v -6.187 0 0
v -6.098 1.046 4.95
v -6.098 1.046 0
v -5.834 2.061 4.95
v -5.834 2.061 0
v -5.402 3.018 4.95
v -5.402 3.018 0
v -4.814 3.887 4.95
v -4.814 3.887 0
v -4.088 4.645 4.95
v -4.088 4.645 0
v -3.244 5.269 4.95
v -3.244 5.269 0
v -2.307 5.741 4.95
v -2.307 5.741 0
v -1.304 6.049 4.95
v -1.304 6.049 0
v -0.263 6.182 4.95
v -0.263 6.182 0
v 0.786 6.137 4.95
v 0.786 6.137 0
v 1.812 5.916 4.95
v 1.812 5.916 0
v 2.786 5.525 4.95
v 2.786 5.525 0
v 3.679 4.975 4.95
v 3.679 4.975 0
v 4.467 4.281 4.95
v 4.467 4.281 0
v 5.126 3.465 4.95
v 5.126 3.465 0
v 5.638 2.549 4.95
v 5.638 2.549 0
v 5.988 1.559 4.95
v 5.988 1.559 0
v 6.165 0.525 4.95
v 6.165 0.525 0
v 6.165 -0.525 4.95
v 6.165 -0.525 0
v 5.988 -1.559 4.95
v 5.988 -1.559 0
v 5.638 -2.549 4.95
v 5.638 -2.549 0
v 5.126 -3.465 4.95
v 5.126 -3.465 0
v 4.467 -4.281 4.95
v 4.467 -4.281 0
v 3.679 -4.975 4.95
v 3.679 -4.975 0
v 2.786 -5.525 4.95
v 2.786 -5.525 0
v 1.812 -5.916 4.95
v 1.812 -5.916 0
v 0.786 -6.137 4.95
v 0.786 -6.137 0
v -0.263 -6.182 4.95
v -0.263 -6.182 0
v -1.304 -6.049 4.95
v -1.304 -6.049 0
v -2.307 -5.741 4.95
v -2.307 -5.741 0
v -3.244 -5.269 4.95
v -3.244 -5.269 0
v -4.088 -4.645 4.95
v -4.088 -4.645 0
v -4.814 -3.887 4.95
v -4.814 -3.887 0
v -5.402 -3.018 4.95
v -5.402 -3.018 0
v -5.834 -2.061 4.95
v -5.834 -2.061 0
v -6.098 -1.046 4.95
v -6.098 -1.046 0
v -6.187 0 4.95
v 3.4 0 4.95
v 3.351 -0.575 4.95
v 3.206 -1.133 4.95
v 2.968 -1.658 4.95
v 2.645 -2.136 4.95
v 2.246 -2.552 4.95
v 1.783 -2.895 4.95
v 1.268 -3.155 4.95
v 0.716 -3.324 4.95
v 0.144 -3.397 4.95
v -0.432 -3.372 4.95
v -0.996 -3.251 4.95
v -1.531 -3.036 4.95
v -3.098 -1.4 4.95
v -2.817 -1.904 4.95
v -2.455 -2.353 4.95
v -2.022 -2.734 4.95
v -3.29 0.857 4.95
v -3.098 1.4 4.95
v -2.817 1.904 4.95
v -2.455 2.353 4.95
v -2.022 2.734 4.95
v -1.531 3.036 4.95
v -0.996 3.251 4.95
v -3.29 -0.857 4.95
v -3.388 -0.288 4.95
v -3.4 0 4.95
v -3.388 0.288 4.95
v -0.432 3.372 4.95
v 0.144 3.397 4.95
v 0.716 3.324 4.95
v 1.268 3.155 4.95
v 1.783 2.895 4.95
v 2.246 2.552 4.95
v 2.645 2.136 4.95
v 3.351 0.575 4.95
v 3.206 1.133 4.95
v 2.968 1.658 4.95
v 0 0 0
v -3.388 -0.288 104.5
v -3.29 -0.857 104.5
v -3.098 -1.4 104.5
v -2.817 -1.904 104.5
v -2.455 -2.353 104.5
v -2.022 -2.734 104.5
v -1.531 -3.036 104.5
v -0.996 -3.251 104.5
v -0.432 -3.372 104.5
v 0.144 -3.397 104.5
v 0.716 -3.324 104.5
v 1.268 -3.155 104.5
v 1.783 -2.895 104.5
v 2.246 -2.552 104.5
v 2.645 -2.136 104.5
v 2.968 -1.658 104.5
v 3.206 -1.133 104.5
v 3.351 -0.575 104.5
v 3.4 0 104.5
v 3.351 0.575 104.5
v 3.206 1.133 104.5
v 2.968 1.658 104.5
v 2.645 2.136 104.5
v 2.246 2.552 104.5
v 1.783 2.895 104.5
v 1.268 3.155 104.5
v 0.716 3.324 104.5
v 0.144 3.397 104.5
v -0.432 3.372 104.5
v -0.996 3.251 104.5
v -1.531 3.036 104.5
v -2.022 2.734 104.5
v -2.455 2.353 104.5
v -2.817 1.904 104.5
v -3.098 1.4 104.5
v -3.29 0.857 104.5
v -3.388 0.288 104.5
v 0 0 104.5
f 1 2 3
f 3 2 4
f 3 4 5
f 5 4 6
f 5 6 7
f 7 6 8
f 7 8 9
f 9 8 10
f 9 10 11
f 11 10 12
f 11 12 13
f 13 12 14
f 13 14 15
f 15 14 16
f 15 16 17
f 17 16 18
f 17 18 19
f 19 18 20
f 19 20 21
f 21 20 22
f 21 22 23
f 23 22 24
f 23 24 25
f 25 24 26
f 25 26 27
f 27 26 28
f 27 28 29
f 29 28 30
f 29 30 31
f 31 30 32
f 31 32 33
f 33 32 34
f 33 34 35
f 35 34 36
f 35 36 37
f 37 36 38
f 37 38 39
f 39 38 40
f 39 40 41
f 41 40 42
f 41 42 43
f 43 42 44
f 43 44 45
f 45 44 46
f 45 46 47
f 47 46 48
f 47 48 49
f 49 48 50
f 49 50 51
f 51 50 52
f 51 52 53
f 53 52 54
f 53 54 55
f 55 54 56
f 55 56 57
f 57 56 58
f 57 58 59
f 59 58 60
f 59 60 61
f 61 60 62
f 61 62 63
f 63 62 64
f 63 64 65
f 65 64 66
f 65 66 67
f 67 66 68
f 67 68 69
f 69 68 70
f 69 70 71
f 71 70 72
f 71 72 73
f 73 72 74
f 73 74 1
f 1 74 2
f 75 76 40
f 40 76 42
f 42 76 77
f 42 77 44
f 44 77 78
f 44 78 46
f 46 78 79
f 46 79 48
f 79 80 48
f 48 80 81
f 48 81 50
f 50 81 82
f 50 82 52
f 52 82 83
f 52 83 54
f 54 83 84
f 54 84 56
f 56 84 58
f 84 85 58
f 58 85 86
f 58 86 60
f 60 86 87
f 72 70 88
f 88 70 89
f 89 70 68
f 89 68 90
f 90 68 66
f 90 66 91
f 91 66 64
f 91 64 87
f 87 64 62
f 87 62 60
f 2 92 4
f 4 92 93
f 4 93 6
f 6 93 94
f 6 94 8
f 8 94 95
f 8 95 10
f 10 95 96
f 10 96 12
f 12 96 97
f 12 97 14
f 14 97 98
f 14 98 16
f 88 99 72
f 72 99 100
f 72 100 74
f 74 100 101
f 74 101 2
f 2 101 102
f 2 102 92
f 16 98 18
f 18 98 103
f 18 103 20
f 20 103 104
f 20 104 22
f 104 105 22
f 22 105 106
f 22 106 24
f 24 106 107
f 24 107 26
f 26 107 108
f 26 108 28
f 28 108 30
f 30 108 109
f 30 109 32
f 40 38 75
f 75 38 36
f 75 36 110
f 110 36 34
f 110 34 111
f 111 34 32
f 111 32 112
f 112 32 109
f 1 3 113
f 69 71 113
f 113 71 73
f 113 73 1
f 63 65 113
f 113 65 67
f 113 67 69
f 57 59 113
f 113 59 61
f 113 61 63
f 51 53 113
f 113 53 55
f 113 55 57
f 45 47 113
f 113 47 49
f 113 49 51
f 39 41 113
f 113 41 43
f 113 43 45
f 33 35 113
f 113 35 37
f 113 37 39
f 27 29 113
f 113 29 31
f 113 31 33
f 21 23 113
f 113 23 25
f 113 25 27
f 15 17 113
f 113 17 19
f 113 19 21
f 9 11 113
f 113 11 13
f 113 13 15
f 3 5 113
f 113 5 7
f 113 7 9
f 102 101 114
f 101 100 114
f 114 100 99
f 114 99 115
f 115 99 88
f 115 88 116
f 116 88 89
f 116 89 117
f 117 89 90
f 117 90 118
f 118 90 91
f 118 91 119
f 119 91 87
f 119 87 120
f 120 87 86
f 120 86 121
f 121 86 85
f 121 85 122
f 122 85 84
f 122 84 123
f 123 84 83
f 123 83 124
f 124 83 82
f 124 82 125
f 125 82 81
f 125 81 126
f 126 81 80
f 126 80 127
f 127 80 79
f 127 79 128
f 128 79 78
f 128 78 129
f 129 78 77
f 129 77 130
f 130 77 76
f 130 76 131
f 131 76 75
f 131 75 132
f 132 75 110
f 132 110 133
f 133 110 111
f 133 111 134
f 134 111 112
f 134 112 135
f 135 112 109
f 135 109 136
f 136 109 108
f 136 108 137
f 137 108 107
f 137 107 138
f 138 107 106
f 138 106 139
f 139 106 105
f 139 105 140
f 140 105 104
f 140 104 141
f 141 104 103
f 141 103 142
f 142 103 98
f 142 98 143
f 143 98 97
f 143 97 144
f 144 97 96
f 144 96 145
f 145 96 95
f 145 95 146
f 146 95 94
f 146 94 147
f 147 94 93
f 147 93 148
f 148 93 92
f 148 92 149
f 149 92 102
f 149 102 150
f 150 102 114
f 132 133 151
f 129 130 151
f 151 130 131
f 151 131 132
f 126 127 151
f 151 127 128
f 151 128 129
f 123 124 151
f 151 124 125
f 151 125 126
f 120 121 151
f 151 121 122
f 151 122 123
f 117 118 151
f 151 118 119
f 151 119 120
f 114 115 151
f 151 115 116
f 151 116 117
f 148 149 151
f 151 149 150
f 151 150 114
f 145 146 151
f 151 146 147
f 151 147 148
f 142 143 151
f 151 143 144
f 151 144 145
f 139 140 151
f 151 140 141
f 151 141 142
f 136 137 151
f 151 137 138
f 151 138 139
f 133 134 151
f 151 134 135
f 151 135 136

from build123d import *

# Parameters (mm, degrees)
SKETCH1_R                           = 1.5
BOSS_EXTRUDE1_DEPTH                 = 42
SKETCH2_R                           = 2.75
BOSS_EXTRUDE2_DEPTH                 = 2.2
ESCALA1_SCALE                       = 1.5
ESCALA2_SCALE                       = 1.5
CROQUIS1_R                          = 3.4
SALIENTE_EXTRUIR1_DEPTH             = 10
SALIENTE_EXTRUIR1_DIRECTION_2_REACH = 96.904


with BuildPart() as part:
    # Sketch1 → Boss-Extrude1 (new body)
    with BuildSketch(Plane.XY):
        with Locations(Location((0, 0, 0), (0, 0, 180))):
            Circle(SKETCH1_R)
    extrude(amount=BOSS_EXTRUDE1_DEPTH)

    # Sketch2 → Boss-Extrude2 (add)
    with BuildSketch(Plane(origin=(0, 0, 0), x_dir=(-1, 0, 0), z_dir=(0, 0, -1))):
        Circle(SKETCH2_R)
    extrude(amount=-BOSS_EXTRUDE2_DEPTH)


with BuildPart() as part_1:
    # Escala1: scaled about (0, 0, 0)
    add(part.part.scale(ESCALA1_SCALE))


with BuildPart() as part_2:
    # Escala2: scaled about (0, 0, 0)
    add(part_1.part.scale(ESCALA2_SCALE))

    # Croquis1 → Saliente-Extruir1 (add)
    with BuildSketch(Plane.XY.offset(94.5)):
        Circle(CROQUIS1_R)
    extrude(amount=SALIENTE_EXTRUIR1_DEPTH)

    # Croquis1 → Saliente-Extruir1 direction 2 (add, up to next)
    with BuildSketch(Plane.XY.offset(94.5), mode=Mode.PRIVATE) as saliente_extruir1_direction_2_sk1:
        Circle(CROQUIS1_R)
    saliente_extruir1_direction_2_tool1 = extrude(saliente_extruir1_direction_2_sk1.sketch, amount=-SALIENTE_EXTRUIR1_DIRECTION_2_REACH, mode=Mode.PRIVATE) - part_2.part
    add(saliente_extruir1_direction_2_tool1.solids().sort_by_distance((0, 0, 94.5))[0])


solid = part_2.part
